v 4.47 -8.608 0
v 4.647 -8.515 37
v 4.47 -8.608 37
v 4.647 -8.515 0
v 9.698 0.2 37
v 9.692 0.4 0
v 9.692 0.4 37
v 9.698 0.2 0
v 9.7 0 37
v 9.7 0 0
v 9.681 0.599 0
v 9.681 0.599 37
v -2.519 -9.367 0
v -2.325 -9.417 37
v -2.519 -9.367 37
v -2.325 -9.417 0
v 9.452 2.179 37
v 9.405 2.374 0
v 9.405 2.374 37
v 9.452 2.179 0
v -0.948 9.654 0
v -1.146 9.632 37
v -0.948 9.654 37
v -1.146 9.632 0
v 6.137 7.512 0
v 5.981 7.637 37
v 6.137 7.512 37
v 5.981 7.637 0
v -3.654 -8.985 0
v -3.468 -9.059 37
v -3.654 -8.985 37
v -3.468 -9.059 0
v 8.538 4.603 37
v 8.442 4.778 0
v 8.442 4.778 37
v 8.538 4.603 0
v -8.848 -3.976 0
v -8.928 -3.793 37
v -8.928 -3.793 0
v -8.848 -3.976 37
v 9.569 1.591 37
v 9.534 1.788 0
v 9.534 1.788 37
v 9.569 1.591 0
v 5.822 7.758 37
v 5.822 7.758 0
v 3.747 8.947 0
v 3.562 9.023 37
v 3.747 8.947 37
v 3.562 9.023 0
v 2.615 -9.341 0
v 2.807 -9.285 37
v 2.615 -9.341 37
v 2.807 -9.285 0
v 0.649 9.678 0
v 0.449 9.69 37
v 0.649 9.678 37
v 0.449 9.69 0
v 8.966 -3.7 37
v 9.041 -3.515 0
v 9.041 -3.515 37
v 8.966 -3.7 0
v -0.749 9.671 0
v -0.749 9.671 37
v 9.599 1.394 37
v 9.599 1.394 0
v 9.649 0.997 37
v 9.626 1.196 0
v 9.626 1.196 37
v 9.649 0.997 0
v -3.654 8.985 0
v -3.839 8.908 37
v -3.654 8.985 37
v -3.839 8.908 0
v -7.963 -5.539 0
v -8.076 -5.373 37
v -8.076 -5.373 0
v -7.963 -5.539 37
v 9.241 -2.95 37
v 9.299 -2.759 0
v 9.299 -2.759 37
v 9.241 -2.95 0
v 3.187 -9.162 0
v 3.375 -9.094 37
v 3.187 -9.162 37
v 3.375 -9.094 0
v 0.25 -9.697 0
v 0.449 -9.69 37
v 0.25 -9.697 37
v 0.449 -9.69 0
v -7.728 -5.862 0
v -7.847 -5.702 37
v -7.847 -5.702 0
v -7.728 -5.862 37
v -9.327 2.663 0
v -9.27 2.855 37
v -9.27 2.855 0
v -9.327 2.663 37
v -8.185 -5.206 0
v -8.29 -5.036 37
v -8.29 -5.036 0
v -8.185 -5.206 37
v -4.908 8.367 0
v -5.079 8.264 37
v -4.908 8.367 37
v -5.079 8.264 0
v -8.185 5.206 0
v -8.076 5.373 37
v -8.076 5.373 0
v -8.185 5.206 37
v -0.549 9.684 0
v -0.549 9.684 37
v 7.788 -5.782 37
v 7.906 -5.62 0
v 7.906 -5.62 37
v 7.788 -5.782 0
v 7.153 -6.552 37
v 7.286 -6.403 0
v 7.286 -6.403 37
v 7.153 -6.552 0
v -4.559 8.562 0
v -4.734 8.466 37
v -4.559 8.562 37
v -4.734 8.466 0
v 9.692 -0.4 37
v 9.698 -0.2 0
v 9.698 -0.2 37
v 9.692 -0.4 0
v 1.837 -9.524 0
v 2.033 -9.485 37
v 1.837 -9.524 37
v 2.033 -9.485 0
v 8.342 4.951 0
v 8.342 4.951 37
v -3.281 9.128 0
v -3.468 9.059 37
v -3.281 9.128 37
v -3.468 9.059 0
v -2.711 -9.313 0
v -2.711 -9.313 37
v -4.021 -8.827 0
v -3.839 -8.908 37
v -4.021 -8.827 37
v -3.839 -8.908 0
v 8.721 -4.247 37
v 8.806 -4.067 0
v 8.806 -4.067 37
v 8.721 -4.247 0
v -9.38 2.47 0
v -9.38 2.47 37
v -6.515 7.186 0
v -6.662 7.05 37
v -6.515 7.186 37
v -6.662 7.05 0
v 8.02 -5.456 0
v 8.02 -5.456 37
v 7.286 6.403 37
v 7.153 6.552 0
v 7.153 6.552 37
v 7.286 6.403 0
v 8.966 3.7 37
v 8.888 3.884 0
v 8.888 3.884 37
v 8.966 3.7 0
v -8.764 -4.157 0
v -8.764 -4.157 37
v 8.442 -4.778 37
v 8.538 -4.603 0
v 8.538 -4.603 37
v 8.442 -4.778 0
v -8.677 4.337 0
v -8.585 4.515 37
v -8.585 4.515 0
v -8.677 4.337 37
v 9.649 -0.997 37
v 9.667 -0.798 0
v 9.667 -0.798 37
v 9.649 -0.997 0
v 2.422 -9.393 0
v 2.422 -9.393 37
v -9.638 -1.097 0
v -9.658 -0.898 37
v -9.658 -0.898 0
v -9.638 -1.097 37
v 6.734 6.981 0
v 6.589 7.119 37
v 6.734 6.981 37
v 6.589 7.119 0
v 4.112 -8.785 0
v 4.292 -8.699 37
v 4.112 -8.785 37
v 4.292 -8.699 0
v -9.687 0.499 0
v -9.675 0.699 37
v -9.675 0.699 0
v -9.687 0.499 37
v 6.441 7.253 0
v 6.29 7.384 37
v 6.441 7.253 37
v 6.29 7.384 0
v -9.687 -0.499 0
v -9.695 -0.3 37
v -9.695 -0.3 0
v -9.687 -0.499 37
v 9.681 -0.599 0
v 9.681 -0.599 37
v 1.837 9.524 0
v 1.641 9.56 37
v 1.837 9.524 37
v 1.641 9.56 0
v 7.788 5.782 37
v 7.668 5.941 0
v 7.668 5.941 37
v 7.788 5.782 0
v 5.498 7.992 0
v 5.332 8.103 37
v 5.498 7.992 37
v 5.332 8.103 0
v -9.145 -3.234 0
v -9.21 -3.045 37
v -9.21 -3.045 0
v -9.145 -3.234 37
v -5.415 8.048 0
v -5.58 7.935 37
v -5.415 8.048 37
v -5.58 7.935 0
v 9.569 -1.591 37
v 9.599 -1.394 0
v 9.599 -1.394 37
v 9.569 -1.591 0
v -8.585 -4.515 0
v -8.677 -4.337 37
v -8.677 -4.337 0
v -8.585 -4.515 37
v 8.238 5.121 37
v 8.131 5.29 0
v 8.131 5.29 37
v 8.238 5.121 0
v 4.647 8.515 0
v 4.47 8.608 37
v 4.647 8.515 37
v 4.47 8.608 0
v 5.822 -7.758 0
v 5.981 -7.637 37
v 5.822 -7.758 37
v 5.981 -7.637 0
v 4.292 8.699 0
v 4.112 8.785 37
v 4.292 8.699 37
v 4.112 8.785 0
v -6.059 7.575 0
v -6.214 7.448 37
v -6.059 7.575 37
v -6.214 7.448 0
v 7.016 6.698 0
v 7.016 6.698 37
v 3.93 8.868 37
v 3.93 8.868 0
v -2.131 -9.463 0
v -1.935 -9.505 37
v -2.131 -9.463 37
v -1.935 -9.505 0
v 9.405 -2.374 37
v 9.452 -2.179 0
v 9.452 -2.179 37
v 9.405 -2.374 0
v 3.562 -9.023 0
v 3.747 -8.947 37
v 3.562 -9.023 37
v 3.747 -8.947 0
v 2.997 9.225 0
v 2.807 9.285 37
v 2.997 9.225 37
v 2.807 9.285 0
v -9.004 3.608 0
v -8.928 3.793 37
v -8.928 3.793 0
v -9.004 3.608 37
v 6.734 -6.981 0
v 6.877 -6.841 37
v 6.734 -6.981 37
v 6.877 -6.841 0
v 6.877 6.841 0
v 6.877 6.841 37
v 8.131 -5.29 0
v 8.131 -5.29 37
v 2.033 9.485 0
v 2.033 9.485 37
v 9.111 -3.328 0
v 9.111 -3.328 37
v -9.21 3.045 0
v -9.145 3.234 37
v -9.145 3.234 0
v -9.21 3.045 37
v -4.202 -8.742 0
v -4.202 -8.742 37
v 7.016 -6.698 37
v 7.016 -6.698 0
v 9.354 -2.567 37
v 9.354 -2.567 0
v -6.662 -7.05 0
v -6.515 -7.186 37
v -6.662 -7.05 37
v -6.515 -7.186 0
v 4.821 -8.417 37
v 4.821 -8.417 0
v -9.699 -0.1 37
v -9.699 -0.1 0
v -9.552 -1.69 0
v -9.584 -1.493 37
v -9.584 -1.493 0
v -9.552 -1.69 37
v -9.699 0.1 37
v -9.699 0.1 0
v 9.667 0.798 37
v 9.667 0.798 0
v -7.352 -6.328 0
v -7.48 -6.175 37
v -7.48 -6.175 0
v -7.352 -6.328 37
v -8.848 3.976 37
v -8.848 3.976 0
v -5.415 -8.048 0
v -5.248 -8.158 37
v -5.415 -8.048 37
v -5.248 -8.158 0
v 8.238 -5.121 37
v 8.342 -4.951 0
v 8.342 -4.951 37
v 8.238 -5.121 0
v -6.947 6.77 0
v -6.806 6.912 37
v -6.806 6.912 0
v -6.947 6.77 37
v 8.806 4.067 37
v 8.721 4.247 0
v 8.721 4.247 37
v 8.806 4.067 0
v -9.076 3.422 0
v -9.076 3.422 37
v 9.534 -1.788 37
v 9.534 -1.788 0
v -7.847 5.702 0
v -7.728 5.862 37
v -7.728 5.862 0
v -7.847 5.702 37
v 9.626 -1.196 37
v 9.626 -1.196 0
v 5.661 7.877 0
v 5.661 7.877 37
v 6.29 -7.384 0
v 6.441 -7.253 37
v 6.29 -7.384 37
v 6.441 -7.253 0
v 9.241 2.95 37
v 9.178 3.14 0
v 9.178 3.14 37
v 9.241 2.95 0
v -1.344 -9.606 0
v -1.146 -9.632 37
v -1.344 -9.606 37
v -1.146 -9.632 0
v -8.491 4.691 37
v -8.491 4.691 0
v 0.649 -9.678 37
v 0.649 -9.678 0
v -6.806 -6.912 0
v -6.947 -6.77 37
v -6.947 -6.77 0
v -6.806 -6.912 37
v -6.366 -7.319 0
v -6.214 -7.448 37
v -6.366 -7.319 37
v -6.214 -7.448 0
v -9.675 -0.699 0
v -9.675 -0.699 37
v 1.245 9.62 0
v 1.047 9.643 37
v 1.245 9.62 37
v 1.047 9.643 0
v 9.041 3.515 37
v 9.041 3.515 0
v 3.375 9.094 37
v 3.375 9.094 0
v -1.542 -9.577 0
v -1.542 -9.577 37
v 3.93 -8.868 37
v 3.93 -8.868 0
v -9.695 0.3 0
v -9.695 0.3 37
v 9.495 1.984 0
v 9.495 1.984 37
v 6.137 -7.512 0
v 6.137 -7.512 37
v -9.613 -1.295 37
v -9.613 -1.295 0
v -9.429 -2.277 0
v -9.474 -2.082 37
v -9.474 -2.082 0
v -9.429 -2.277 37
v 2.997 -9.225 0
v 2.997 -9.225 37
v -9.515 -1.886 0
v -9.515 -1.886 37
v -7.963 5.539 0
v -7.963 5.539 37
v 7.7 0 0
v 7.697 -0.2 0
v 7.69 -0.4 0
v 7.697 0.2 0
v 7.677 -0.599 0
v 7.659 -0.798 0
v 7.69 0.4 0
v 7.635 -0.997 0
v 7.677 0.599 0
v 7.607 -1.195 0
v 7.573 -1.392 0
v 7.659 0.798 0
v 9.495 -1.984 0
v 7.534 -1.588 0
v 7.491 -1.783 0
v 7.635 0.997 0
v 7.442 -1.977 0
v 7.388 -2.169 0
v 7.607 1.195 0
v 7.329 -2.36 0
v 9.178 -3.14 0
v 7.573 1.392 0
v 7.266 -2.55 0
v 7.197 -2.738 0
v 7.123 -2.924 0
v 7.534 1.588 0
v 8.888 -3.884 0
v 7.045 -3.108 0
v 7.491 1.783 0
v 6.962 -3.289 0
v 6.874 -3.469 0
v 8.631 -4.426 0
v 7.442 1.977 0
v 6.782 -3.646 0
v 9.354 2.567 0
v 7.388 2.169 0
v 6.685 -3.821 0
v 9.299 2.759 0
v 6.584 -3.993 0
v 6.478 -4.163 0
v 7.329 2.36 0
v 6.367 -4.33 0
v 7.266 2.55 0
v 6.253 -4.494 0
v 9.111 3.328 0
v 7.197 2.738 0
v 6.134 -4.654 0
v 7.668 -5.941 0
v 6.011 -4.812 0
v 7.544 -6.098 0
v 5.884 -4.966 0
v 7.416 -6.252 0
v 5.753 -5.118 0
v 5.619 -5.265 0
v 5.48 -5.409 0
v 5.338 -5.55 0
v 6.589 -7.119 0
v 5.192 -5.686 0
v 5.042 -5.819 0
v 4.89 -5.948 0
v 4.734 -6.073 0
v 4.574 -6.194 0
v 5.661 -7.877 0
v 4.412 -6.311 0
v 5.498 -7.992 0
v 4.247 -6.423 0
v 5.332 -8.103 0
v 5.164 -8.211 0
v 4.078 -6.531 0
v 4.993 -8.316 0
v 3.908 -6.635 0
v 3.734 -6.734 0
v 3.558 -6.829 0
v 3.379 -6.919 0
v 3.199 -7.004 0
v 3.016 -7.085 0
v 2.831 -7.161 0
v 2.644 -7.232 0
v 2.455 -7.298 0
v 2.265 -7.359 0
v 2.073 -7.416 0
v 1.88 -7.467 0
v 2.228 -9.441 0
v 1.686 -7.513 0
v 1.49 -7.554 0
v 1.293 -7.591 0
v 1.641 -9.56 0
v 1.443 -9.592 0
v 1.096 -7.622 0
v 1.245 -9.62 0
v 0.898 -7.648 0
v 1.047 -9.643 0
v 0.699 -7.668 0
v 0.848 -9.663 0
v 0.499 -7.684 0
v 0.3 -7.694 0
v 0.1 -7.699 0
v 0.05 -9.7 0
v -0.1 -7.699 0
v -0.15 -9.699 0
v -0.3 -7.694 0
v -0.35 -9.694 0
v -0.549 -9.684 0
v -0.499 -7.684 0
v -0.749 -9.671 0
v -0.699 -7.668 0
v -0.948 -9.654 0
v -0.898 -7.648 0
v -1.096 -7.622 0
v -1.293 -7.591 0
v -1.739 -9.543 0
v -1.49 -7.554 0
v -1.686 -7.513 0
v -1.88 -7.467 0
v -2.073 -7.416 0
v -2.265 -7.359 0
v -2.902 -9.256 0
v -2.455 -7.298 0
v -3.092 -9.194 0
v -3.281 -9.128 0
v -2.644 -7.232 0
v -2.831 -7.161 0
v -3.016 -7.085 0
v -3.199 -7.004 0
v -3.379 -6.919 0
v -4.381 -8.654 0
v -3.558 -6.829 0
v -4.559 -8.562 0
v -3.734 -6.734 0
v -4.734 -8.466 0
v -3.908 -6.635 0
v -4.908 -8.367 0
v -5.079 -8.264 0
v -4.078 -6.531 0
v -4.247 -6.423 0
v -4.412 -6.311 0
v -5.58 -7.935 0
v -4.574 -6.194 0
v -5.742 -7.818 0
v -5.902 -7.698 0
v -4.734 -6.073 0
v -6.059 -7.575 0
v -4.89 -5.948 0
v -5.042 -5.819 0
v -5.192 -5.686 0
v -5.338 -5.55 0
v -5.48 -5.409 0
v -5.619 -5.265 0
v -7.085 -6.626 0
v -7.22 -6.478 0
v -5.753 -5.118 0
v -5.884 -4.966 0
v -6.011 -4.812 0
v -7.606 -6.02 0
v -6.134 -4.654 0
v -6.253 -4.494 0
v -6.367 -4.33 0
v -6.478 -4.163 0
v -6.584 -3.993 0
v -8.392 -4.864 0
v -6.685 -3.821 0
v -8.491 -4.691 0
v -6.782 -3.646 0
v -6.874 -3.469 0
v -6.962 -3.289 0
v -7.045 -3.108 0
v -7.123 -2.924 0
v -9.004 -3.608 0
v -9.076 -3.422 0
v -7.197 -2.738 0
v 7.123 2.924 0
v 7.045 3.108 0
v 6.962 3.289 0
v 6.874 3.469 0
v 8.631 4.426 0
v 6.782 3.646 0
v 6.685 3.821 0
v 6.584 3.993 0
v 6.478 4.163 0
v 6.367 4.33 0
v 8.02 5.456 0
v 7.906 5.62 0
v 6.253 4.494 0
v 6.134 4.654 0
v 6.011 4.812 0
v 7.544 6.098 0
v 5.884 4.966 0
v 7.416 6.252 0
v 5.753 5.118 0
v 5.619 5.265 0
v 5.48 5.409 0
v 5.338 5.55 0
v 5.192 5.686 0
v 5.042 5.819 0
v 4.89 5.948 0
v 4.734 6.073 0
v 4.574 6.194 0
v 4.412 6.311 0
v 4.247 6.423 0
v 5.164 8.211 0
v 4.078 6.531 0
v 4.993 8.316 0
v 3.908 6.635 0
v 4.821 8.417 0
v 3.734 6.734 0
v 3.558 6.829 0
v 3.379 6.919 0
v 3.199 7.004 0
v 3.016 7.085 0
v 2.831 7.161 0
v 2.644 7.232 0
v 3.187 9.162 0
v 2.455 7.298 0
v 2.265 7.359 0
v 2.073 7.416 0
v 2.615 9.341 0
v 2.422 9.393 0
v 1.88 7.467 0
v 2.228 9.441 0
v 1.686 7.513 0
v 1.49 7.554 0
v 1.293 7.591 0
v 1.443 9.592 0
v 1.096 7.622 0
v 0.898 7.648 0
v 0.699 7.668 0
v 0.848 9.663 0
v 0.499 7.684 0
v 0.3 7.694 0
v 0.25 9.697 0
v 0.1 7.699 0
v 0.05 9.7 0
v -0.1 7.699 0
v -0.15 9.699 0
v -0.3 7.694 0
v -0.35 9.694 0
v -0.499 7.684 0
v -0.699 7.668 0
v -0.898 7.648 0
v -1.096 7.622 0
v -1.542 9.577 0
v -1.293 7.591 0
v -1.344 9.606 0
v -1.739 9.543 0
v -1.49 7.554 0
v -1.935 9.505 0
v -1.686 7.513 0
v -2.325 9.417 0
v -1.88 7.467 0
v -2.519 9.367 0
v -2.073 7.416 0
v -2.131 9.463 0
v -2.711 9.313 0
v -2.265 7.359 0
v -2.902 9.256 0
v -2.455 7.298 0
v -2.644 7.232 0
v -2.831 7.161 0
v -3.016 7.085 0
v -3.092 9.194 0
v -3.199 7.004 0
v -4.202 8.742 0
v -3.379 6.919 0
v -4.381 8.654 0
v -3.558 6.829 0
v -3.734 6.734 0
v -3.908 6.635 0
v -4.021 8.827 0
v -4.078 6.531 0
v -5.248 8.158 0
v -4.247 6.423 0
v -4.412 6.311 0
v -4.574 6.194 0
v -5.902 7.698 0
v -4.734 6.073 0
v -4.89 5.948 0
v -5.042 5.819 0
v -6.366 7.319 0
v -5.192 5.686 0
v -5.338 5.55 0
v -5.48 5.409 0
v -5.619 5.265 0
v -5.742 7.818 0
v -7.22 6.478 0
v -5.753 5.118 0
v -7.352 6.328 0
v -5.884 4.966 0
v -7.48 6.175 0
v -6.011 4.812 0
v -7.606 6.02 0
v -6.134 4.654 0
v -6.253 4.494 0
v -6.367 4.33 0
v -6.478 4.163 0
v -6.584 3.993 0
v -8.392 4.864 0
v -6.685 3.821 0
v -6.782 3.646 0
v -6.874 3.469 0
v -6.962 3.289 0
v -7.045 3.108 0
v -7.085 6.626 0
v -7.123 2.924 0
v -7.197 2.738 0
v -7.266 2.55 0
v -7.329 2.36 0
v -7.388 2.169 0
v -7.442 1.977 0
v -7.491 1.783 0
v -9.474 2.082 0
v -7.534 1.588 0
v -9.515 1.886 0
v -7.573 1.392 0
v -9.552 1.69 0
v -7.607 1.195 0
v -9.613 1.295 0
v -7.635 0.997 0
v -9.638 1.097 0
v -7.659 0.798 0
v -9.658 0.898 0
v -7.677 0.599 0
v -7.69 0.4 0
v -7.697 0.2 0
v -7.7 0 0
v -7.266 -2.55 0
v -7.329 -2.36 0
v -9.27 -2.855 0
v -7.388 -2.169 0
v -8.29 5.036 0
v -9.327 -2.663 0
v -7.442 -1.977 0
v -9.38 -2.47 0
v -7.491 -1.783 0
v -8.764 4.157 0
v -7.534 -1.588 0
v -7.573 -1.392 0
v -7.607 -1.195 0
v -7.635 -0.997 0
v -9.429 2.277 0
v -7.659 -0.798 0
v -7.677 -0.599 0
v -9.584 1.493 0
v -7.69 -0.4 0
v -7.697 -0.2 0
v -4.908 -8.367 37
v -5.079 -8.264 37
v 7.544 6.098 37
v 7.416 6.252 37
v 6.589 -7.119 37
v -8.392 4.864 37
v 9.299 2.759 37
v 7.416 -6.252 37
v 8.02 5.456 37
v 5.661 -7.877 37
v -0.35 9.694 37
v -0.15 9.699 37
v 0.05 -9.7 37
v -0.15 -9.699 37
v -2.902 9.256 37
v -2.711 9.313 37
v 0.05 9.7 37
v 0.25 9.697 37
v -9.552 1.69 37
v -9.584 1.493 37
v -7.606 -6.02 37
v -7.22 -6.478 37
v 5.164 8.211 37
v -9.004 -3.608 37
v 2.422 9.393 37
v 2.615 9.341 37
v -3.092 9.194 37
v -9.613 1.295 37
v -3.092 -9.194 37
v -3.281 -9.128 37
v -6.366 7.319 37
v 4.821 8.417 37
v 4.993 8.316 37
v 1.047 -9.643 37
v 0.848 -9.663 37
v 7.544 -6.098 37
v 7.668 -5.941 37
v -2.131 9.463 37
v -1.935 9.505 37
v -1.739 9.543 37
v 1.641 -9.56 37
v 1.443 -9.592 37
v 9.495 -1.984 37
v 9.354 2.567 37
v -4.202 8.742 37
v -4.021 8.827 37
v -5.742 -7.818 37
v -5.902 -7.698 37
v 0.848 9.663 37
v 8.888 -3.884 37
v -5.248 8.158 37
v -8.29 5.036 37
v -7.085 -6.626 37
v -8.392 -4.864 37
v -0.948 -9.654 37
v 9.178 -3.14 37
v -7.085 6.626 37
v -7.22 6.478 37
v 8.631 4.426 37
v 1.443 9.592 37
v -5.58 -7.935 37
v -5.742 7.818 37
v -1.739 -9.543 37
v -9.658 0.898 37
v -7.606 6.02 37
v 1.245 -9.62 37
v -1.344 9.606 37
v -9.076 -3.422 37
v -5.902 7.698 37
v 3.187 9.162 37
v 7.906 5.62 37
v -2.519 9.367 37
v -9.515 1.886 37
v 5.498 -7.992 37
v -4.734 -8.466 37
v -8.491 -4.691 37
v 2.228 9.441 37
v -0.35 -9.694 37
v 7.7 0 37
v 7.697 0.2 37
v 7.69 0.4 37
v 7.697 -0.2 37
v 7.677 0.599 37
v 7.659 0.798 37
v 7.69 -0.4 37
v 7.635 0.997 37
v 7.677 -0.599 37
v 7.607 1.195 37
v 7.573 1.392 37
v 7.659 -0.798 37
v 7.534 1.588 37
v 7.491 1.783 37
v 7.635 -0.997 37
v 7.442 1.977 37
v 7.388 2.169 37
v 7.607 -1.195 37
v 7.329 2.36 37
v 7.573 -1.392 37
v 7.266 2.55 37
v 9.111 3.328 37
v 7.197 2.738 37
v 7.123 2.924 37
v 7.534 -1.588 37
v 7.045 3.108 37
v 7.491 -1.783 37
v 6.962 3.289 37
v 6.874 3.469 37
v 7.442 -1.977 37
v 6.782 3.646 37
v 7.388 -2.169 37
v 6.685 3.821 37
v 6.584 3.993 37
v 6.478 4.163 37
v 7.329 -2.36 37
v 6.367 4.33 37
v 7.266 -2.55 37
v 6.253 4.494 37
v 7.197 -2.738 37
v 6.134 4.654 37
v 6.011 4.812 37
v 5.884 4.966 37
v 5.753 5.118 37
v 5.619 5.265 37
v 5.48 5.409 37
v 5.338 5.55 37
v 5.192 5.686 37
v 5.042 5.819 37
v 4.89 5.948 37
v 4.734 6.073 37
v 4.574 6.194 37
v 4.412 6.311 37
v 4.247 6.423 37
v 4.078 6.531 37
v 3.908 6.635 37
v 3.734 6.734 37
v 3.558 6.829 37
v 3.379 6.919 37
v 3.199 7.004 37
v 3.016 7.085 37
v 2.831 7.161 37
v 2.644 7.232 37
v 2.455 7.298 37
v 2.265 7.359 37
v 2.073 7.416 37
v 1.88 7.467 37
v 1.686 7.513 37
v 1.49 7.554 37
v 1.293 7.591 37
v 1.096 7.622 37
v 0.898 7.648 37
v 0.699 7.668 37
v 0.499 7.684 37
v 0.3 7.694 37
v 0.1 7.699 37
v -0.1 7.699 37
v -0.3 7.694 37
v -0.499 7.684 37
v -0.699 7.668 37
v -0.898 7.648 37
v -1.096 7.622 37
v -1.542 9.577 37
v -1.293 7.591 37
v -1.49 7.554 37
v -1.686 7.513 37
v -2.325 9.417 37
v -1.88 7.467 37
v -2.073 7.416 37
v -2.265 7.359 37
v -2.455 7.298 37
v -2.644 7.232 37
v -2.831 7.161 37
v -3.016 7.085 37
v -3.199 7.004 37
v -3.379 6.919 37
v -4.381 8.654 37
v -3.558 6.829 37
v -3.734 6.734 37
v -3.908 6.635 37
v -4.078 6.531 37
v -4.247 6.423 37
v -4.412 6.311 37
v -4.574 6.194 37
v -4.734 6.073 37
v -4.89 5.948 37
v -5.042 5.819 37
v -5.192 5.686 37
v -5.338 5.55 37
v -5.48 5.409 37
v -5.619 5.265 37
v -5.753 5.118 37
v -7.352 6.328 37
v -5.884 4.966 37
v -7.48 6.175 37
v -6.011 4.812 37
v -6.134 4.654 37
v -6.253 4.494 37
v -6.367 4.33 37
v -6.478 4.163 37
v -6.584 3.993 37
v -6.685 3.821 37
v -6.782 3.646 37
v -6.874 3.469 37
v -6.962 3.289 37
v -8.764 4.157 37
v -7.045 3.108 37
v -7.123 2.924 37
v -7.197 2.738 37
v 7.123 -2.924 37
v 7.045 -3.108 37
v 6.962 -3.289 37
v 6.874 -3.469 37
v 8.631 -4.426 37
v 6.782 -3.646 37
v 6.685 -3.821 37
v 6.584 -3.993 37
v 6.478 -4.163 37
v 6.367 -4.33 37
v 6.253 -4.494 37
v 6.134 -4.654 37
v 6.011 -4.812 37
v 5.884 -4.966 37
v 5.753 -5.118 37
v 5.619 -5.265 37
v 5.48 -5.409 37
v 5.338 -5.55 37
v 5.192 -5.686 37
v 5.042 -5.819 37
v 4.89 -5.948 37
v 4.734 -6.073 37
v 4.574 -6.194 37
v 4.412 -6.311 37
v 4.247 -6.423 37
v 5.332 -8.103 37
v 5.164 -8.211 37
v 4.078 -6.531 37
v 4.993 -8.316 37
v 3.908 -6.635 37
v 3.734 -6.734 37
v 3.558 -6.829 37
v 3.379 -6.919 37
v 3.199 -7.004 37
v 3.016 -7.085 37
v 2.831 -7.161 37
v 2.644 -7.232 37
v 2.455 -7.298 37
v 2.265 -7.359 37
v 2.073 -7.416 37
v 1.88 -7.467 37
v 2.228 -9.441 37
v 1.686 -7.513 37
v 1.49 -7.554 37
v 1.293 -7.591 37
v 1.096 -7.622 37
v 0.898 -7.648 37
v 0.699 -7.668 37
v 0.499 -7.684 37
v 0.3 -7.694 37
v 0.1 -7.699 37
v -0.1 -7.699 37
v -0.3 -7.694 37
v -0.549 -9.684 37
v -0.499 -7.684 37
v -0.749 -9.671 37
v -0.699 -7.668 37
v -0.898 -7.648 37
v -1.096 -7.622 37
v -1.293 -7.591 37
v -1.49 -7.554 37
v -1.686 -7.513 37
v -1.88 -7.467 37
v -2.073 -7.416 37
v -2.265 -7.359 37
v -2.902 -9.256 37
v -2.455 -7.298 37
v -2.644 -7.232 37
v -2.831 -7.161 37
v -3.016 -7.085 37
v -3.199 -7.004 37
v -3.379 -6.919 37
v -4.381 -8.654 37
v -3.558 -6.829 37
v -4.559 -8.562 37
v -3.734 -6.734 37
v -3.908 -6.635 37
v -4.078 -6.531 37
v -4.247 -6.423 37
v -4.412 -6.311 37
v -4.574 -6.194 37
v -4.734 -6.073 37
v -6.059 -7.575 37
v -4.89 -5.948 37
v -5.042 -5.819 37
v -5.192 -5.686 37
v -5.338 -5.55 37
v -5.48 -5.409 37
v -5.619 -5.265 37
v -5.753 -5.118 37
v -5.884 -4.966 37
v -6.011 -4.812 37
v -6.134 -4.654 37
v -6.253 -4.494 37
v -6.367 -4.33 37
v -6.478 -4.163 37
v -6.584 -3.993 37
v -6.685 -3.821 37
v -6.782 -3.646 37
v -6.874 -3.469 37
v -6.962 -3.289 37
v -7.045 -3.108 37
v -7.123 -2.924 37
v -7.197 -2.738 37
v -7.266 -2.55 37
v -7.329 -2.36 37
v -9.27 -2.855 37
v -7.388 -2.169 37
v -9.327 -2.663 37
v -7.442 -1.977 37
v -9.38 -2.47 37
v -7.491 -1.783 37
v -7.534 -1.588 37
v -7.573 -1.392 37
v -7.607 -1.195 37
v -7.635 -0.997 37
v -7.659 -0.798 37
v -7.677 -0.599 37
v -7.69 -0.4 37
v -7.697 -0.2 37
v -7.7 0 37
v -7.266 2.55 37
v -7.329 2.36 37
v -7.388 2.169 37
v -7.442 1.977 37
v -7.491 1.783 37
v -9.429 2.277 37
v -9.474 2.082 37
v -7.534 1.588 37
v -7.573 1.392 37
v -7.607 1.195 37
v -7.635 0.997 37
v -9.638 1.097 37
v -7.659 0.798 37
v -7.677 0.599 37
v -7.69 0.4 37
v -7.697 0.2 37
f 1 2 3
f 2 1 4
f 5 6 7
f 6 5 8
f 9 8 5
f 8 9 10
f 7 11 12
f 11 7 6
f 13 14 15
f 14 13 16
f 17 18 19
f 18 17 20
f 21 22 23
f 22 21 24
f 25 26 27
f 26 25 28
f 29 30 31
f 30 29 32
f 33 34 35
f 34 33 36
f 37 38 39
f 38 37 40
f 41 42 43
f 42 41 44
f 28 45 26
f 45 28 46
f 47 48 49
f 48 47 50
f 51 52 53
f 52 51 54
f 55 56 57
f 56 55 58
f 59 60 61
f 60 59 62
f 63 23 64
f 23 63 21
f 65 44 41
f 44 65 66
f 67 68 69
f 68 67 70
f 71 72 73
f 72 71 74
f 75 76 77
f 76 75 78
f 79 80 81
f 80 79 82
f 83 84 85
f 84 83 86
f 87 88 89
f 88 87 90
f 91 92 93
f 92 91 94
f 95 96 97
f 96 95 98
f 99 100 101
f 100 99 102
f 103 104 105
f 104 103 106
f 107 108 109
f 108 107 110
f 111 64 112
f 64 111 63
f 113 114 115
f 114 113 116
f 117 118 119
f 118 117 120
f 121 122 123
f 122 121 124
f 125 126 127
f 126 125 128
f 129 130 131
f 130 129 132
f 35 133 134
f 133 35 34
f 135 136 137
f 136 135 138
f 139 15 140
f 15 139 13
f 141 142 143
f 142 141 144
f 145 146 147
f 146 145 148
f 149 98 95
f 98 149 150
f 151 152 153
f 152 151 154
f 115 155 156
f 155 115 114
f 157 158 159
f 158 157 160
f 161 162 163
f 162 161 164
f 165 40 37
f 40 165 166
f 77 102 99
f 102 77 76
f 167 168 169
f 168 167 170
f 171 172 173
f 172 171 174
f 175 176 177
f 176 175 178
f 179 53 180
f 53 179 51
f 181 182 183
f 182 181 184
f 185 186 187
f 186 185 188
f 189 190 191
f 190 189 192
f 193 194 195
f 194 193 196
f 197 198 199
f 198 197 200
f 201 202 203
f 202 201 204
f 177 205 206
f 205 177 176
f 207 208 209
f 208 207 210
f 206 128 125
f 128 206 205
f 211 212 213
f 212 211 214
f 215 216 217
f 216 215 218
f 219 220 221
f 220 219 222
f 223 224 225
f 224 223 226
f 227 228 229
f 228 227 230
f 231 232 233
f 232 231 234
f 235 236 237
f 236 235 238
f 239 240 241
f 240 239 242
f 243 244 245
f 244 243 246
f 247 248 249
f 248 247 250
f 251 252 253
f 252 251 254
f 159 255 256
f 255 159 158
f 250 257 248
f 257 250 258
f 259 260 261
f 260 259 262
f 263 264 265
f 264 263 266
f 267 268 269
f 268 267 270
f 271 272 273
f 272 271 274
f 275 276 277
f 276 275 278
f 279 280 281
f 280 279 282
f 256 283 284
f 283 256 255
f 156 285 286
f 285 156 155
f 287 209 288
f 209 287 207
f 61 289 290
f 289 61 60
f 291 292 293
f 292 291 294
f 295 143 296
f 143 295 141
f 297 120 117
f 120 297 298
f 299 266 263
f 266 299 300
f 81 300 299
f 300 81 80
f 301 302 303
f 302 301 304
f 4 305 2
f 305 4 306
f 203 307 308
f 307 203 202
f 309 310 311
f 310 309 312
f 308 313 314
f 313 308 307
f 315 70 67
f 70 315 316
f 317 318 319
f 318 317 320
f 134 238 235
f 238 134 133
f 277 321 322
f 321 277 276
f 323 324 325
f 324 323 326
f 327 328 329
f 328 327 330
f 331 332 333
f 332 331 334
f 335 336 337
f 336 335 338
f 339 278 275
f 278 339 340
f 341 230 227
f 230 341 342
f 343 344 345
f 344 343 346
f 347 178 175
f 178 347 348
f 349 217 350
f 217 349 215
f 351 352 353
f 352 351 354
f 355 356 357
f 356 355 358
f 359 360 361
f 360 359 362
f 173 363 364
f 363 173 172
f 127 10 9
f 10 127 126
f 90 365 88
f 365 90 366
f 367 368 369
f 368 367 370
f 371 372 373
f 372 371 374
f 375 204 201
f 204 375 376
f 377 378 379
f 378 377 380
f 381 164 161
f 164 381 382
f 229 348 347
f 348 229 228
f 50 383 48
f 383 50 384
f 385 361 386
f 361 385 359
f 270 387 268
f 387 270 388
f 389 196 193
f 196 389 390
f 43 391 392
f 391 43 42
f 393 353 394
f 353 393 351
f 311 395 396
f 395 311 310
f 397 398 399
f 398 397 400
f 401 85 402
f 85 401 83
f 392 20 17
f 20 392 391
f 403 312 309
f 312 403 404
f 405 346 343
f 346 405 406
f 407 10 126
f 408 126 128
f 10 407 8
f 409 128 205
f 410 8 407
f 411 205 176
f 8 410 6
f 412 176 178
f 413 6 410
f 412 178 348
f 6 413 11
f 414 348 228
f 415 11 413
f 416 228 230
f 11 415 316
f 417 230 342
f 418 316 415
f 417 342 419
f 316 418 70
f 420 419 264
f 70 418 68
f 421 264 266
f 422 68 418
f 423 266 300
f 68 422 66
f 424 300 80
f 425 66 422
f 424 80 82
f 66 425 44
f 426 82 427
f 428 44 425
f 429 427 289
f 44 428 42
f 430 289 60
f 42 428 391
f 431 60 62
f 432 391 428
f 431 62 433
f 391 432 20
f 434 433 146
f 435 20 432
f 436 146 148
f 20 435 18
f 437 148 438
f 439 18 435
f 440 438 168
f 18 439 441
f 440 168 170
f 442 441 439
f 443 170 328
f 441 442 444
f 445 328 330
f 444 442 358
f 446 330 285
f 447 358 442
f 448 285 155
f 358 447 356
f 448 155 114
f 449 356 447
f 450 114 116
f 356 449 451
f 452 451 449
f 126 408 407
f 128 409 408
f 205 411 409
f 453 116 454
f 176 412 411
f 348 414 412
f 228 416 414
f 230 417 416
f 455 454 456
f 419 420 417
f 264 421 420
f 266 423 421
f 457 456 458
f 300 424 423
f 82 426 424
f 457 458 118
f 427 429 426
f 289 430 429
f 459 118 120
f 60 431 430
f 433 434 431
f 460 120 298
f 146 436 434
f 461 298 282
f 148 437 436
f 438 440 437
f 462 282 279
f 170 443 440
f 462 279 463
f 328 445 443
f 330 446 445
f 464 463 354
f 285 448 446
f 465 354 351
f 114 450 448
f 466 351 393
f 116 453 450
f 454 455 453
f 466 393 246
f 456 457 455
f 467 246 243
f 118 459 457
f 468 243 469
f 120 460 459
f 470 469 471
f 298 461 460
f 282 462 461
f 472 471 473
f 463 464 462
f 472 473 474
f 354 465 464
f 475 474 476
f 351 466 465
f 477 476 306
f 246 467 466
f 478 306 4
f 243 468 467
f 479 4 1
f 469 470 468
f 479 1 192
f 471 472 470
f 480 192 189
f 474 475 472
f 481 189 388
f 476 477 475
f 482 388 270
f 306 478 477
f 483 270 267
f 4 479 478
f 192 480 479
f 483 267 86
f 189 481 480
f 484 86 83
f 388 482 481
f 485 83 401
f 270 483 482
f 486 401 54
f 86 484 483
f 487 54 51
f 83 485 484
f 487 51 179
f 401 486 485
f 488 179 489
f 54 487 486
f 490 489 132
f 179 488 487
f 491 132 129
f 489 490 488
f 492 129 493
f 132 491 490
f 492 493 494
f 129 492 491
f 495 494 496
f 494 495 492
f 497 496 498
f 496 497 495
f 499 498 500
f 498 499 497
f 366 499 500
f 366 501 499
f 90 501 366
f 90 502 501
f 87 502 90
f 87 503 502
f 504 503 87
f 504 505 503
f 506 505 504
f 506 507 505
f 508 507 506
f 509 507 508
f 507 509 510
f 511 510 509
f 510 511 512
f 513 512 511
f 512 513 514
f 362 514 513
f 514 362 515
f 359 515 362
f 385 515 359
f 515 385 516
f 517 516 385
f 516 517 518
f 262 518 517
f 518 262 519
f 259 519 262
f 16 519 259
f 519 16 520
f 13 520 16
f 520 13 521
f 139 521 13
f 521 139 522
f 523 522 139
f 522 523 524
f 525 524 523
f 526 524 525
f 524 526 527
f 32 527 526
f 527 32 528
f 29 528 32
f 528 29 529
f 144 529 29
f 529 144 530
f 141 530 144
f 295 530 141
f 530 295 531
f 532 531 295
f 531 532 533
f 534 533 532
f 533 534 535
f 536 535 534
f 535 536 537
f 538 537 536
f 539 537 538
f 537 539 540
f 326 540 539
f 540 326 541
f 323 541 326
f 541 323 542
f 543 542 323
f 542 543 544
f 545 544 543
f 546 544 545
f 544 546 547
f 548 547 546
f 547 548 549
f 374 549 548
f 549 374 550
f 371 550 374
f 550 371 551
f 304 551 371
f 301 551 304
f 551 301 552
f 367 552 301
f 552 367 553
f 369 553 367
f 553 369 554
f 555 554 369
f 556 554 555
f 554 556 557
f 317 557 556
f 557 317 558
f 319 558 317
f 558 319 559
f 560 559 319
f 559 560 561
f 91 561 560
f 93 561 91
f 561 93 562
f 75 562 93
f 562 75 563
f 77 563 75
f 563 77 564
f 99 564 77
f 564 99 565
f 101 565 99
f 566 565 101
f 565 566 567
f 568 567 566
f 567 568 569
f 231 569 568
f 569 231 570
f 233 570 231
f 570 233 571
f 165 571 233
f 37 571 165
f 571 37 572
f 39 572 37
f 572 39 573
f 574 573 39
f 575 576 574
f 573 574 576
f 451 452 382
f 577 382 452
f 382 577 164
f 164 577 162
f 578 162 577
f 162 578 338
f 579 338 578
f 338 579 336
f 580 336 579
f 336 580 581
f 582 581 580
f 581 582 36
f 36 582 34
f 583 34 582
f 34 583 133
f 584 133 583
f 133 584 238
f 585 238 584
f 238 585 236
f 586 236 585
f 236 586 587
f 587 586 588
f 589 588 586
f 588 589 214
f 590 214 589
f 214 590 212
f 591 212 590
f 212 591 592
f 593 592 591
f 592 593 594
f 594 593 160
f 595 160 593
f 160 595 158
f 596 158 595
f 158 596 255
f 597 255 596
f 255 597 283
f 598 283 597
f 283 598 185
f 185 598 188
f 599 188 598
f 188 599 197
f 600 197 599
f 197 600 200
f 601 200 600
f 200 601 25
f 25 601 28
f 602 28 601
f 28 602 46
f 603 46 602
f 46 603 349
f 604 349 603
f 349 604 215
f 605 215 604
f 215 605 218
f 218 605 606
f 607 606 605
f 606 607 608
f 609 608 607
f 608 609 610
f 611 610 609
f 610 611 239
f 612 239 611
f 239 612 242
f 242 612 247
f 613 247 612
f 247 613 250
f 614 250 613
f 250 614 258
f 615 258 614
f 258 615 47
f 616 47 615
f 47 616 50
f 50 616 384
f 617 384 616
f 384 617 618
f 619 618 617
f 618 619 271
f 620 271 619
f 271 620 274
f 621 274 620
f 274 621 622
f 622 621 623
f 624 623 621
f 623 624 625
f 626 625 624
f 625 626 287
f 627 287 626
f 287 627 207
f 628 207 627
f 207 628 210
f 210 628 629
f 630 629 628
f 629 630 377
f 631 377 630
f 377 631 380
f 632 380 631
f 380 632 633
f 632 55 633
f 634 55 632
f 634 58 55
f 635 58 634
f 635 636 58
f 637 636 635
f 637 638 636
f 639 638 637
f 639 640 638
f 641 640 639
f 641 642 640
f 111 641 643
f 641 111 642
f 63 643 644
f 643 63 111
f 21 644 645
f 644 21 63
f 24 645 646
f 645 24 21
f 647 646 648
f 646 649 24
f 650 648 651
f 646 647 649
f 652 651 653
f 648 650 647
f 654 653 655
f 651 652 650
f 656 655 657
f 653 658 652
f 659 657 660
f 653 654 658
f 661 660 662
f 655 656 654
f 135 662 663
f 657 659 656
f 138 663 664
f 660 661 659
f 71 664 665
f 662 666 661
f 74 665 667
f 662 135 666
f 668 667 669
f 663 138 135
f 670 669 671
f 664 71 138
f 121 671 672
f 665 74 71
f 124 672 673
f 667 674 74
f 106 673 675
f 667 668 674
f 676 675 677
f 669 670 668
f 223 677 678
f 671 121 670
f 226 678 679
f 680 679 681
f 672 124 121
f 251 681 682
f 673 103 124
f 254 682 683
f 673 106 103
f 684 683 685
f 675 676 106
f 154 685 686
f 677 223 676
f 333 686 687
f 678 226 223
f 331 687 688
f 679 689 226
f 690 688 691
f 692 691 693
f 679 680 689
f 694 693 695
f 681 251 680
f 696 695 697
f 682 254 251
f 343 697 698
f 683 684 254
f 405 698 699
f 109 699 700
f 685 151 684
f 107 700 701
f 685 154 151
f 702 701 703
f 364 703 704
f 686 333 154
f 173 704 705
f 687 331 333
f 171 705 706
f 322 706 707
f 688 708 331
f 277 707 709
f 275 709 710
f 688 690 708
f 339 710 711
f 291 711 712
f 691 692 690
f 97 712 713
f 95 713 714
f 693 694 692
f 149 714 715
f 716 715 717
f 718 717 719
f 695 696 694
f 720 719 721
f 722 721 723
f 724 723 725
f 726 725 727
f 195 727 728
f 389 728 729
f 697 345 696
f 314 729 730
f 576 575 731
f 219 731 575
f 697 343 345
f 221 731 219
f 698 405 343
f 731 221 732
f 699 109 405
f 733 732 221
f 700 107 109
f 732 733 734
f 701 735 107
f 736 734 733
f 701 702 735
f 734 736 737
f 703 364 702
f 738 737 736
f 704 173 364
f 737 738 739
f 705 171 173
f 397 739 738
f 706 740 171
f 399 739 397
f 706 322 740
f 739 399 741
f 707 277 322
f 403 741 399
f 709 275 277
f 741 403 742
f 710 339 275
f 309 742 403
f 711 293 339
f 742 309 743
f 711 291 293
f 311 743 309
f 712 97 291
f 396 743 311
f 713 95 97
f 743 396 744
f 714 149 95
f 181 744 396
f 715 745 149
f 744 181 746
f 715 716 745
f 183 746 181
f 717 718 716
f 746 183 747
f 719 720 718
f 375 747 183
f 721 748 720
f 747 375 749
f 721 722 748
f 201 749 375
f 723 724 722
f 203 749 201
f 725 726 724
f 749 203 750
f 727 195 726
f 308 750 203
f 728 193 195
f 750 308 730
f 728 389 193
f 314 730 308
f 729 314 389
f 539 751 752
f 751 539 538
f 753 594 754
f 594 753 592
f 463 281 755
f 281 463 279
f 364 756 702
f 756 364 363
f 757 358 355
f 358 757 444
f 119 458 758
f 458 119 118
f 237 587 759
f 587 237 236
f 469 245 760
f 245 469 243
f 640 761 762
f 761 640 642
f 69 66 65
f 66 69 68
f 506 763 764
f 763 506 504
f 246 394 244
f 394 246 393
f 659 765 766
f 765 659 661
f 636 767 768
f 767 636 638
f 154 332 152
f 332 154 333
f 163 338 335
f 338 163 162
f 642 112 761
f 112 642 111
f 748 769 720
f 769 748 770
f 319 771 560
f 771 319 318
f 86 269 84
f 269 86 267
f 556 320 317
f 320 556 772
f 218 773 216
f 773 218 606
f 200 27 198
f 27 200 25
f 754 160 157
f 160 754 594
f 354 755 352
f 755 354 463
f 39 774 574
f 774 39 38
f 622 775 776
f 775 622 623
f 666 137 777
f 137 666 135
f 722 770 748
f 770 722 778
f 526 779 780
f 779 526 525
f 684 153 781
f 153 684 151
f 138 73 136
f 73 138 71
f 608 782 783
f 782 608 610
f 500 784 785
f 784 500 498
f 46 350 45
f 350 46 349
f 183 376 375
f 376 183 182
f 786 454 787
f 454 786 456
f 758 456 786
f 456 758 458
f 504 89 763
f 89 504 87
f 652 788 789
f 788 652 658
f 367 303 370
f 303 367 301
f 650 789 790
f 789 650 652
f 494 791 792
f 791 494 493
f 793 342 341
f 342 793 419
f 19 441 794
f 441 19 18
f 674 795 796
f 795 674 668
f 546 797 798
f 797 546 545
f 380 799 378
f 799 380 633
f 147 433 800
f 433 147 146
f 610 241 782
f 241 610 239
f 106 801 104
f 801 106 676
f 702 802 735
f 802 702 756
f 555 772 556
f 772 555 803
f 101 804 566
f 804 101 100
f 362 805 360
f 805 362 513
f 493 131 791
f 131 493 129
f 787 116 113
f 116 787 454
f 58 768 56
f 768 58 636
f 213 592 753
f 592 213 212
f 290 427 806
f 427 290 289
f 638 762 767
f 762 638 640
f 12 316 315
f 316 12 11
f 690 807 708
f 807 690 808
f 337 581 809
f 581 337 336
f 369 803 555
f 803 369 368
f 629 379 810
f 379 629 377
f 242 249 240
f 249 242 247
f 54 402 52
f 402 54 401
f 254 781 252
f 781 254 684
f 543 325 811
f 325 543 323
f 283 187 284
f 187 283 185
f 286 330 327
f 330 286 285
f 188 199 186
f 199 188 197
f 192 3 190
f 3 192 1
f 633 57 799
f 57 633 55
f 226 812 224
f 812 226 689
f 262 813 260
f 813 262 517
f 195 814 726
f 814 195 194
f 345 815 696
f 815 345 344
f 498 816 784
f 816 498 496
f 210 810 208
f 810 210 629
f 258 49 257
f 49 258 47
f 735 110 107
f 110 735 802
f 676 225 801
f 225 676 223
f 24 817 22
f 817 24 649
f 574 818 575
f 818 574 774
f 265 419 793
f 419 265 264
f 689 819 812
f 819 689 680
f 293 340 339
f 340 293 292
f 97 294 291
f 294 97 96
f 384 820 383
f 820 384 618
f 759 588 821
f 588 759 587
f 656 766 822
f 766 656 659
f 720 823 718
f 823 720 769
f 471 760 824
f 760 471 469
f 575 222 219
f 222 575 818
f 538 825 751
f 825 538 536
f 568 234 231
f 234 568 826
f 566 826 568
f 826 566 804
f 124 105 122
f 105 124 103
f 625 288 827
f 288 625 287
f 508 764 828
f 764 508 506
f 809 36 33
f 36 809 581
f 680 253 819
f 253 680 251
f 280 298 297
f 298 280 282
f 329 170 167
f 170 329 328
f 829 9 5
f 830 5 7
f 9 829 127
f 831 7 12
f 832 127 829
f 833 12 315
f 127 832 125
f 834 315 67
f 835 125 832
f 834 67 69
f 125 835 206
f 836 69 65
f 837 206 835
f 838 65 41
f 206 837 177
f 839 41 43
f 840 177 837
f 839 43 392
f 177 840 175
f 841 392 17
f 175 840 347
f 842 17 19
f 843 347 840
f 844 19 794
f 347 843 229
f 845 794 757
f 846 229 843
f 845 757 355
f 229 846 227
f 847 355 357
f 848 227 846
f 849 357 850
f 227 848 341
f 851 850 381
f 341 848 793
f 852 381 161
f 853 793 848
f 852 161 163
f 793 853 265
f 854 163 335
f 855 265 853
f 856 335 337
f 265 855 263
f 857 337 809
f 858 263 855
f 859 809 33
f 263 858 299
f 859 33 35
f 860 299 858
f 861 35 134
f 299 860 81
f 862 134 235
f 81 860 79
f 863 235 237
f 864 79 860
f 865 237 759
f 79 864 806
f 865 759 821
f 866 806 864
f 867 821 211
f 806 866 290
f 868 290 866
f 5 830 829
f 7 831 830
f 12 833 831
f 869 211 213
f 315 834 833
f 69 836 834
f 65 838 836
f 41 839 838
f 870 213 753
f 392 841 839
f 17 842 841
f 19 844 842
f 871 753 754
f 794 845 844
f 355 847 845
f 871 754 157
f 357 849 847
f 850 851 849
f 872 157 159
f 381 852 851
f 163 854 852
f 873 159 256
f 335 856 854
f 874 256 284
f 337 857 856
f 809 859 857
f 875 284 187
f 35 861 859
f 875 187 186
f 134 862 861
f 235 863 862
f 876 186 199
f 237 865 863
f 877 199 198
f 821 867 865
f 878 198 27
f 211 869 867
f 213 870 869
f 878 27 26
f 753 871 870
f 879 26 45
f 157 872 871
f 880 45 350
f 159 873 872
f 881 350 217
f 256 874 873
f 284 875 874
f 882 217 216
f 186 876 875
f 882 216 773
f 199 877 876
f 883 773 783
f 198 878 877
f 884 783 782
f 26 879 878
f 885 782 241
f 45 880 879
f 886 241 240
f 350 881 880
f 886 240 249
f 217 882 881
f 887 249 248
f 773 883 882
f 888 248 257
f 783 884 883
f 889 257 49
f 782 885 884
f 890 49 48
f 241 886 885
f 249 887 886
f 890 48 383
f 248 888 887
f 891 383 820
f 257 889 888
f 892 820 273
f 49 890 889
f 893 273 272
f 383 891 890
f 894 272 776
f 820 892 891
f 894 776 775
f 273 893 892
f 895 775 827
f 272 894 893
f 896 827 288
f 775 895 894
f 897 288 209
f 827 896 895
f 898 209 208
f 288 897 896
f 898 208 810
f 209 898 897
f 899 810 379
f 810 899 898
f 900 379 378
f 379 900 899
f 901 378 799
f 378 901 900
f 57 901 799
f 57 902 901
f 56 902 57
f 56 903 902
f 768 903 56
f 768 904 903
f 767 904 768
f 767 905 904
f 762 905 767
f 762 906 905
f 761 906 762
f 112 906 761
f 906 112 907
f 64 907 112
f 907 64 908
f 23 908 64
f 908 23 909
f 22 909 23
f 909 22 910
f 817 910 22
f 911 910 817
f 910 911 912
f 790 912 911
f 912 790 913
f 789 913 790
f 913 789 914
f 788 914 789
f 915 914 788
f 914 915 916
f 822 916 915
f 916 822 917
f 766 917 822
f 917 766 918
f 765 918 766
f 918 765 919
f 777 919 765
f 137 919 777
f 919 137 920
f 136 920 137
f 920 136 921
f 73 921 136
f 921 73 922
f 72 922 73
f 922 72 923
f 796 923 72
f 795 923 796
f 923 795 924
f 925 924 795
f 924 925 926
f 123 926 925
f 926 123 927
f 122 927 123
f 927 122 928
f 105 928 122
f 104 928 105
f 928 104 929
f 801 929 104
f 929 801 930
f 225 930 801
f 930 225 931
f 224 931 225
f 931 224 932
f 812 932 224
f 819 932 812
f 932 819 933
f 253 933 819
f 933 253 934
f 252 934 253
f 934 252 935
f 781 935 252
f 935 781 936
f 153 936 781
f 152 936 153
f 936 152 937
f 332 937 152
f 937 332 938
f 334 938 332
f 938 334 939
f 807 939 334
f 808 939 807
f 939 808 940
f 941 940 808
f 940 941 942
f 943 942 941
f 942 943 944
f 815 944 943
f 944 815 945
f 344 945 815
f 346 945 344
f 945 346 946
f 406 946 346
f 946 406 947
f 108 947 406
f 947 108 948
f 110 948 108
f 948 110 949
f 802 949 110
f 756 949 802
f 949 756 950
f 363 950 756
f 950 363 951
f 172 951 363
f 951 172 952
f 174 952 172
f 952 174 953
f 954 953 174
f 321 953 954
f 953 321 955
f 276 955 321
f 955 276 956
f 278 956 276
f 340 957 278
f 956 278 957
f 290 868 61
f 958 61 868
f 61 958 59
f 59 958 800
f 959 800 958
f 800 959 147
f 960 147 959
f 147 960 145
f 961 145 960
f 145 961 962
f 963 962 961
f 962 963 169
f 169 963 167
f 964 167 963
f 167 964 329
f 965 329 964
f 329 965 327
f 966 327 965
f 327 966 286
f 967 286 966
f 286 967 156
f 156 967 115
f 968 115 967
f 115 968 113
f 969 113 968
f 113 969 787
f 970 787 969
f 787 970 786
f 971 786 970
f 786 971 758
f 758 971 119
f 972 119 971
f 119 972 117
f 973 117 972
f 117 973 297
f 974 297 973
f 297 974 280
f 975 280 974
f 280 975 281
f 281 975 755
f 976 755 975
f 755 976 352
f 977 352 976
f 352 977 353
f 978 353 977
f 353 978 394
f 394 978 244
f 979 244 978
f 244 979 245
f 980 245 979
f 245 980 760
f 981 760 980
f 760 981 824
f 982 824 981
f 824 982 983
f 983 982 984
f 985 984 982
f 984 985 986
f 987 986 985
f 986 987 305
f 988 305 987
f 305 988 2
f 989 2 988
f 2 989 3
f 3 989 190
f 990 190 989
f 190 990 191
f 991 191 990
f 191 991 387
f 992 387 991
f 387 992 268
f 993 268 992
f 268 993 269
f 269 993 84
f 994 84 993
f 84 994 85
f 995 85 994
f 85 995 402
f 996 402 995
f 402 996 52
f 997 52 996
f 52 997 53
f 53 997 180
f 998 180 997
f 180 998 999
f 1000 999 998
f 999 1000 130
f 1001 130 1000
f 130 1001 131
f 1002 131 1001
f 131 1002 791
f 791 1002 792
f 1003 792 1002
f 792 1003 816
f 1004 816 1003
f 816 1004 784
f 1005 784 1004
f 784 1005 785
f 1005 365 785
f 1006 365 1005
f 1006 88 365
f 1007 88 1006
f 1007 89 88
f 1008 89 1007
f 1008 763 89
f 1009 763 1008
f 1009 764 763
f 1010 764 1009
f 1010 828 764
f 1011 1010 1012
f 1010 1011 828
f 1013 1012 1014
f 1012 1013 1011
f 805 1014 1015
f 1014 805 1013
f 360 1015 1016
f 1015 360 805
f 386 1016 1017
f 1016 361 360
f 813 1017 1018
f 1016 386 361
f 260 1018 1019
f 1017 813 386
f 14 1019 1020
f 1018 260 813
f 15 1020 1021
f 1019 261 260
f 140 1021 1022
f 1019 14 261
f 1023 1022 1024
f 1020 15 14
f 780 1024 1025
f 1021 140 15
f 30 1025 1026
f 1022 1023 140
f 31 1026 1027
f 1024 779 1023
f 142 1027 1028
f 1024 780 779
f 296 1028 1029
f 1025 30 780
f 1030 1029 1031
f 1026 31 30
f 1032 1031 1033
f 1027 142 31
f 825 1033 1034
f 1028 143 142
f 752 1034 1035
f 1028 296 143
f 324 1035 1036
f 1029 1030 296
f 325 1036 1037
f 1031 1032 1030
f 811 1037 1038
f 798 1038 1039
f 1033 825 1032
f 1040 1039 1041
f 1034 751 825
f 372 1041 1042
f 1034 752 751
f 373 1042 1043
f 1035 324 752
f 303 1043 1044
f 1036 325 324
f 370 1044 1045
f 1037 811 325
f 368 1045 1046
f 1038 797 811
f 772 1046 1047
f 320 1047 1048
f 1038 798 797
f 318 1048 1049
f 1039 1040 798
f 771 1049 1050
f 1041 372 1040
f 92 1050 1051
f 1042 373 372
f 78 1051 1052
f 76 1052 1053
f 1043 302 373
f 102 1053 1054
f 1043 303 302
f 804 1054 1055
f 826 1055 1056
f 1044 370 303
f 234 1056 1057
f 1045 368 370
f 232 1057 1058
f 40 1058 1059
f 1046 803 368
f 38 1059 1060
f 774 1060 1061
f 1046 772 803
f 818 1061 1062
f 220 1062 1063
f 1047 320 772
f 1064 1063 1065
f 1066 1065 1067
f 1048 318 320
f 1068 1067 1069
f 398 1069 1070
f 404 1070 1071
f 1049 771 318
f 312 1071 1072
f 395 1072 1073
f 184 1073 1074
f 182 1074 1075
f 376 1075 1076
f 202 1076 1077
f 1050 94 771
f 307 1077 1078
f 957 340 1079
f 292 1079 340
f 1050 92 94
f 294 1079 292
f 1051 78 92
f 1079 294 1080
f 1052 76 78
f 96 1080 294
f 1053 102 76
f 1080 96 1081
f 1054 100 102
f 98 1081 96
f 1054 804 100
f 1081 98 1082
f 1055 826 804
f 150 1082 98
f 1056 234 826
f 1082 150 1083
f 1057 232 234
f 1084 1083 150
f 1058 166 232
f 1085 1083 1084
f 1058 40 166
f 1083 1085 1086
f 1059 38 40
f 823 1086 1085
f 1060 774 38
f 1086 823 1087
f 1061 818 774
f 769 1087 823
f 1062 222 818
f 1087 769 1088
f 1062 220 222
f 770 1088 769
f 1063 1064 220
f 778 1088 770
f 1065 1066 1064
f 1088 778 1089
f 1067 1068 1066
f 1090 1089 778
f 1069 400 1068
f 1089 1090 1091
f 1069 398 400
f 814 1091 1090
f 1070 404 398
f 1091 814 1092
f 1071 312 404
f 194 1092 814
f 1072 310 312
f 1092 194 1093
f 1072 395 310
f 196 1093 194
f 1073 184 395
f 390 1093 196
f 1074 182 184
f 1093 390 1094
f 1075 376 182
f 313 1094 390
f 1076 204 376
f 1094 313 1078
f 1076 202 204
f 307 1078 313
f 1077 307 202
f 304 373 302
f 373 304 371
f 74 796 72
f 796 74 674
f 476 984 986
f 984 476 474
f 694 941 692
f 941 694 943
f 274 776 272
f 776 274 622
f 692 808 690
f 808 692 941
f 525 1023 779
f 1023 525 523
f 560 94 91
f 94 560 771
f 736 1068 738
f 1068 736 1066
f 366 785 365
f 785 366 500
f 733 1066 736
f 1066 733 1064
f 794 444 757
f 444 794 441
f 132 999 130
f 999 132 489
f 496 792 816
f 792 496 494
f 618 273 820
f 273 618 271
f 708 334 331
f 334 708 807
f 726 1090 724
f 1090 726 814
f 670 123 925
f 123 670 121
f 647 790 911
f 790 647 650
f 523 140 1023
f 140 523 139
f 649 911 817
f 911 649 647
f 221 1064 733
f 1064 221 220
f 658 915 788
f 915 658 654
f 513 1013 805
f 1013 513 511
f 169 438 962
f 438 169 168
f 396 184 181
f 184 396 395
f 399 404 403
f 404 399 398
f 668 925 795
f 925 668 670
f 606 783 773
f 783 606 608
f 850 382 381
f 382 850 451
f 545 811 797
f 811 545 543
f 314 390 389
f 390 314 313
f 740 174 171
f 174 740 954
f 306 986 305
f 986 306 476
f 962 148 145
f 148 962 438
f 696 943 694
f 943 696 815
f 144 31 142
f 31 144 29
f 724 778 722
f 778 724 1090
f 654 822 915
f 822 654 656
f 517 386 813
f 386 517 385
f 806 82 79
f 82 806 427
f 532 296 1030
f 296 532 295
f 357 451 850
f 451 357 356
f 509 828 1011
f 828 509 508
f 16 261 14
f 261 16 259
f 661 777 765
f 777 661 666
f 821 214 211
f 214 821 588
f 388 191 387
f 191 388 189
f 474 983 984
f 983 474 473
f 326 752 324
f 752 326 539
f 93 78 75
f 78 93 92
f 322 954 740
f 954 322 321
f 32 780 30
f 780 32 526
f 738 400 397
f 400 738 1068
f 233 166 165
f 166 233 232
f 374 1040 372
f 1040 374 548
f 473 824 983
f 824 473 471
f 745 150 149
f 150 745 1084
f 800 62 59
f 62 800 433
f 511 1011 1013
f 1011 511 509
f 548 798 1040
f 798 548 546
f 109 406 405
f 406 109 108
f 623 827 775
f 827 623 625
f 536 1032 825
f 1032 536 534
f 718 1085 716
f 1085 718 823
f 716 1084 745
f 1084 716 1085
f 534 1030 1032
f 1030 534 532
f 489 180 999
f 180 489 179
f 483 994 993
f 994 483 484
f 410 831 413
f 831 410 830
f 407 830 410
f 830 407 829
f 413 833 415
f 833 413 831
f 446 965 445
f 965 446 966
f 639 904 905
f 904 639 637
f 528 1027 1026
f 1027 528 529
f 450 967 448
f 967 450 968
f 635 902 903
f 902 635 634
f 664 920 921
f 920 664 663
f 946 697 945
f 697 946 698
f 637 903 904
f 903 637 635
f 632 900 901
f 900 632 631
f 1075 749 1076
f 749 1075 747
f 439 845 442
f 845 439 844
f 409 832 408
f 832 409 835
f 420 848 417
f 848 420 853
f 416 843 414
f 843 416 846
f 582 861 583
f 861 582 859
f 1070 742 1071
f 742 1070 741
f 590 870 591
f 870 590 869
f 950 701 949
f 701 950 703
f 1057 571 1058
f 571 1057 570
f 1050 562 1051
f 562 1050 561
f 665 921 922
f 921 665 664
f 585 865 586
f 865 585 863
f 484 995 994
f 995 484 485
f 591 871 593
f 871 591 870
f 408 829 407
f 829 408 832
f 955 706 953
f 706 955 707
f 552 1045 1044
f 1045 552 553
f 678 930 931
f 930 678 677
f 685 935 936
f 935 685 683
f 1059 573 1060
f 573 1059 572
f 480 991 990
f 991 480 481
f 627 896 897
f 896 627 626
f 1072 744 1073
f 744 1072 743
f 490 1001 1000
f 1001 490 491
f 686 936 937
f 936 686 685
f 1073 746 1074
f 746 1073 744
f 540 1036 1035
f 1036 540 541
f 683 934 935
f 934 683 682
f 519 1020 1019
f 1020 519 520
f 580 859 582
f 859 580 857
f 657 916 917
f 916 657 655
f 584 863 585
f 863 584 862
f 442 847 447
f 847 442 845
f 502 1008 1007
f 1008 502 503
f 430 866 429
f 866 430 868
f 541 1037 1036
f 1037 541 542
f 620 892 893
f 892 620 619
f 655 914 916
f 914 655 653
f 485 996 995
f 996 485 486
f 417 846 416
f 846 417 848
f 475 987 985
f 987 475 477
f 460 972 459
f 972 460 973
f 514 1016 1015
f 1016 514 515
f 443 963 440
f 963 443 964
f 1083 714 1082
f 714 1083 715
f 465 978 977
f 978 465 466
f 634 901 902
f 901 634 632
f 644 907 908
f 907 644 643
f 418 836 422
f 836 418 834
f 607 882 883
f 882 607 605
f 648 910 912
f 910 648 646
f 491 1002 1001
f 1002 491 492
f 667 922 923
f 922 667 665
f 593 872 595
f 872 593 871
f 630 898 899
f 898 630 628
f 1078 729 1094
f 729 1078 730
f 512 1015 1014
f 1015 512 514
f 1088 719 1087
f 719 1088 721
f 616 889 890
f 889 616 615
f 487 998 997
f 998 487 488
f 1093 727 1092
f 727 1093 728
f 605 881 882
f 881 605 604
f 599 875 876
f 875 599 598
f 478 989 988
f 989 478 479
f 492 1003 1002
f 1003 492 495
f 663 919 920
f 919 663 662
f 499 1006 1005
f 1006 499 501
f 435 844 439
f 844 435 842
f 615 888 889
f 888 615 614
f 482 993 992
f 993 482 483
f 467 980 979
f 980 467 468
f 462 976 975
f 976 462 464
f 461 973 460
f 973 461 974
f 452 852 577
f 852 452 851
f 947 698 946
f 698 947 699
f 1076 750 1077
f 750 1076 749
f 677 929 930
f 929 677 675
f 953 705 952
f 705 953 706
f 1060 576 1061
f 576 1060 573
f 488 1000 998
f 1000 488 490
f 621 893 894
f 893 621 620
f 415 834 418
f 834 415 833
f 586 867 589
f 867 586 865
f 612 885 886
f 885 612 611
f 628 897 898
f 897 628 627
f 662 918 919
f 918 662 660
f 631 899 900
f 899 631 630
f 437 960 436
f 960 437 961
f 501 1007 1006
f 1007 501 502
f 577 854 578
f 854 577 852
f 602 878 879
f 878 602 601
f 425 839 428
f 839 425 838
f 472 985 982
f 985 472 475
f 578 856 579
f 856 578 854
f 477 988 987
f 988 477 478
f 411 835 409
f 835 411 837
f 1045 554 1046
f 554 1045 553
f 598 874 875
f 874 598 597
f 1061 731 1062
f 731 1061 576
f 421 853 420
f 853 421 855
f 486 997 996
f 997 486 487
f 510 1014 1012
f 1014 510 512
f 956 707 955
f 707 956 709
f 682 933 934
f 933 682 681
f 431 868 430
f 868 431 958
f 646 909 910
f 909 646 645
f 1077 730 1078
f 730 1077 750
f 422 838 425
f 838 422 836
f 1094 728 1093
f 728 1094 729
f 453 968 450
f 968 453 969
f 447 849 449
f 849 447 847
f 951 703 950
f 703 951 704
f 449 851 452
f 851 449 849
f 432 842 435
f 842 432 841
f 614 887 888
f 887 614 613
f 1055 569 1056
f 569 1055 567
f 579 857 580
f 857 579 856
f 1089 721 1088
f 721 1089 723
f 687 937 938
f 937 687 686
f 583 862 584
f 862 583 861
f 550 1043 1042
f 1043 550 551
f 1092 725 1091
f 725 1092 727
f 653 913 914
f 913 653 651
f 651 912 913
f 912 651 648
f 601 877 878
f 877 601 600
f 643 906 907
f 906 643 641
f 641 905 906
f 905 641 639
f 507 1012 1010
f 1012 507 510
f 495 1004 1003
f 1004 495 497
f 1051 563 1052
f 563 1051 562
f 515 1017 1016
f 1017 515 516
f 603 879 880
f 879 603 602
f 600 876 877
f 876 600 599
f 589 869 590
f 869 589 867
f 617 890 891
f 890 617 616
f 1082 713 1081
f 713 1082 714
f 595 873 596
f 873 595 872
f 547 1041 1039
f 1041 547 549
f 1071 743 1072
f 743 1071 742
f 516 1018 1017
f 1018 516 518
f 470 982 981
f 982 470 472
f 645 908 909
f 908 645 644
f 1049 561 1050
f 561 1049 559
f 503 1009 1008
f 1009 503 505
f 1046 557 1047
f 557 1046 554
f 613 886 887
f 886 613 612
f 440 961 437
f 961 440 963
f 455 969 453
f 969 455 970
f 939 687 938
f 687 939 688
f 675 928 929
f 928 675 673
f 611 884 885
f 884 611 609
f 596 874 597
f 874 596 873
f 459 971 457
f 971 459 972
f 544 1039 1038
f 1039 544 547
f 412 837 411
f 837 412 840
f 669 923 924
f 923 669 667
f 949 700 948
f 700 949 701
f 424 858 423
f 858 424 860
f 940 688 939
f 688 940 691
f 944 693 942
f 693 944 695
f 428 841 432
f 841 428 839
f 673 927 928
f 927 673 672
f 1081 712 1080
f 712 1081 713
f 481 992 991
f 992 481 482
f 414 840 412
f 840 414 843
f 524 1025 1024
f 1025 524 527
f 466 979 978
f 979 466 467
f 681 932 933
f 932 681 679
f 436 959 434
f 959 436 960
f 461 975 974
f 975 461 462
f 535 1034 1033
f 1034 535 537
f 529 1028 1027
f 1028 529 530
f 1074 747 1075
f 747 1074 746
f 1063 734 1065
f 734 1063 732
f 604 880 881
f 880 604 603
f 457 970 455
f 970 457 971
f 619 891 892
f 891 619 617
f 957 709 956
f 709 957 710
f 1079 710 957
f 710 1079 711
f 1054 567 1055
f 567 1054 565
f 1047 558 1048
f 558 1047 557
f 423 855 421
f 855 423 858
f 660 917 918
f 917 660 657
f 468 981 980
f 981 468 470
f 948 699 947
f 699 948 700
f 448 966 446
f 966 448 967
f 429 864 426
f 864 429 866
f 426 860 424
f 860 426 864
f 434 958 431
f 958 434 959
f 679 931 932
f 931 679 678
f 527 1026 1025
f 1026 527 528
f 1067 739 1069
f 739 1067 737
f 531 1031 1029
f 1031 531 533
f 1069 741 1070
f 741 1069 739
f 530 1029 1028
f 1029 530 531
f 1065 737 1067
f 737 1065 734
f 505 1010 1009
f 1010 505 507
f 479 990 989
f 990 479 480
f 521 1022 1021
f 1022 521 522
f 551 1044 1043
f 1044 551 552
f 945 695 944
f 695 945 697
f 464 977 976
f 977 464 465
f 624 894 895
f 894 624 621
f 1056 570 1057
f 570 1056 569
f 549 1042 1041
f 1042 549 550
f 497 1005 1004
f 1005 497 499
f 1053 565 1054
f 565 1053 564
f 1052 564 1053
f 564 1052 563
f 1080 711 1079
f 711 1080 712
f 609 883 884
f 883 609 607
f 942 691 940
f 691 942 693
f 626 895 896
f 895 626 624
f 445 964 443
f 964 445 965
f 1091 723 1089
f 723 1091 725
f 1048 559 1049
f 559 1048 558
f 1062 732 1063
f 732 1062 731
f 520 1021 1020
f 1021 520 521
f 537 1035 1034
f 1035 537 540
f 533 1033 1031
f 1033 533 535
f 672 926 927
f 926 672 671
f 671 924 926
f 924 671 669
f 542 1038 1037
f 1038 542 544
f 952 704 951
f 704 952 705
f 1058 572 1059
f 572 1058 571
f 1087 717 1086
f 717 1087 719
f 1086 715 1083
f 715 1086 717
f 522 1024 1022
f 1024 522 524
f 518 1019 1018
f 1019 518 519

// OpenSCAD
use <MCAD/boxes.scad>

$fa=.5;
$fs=.2;

//$fa=1; $fs=5;

difference(){
   cylinder(37, 9.7, 9.7);
    translate([0,0,-1])
   cylinder(39, 7.7, 7.7);
    }
